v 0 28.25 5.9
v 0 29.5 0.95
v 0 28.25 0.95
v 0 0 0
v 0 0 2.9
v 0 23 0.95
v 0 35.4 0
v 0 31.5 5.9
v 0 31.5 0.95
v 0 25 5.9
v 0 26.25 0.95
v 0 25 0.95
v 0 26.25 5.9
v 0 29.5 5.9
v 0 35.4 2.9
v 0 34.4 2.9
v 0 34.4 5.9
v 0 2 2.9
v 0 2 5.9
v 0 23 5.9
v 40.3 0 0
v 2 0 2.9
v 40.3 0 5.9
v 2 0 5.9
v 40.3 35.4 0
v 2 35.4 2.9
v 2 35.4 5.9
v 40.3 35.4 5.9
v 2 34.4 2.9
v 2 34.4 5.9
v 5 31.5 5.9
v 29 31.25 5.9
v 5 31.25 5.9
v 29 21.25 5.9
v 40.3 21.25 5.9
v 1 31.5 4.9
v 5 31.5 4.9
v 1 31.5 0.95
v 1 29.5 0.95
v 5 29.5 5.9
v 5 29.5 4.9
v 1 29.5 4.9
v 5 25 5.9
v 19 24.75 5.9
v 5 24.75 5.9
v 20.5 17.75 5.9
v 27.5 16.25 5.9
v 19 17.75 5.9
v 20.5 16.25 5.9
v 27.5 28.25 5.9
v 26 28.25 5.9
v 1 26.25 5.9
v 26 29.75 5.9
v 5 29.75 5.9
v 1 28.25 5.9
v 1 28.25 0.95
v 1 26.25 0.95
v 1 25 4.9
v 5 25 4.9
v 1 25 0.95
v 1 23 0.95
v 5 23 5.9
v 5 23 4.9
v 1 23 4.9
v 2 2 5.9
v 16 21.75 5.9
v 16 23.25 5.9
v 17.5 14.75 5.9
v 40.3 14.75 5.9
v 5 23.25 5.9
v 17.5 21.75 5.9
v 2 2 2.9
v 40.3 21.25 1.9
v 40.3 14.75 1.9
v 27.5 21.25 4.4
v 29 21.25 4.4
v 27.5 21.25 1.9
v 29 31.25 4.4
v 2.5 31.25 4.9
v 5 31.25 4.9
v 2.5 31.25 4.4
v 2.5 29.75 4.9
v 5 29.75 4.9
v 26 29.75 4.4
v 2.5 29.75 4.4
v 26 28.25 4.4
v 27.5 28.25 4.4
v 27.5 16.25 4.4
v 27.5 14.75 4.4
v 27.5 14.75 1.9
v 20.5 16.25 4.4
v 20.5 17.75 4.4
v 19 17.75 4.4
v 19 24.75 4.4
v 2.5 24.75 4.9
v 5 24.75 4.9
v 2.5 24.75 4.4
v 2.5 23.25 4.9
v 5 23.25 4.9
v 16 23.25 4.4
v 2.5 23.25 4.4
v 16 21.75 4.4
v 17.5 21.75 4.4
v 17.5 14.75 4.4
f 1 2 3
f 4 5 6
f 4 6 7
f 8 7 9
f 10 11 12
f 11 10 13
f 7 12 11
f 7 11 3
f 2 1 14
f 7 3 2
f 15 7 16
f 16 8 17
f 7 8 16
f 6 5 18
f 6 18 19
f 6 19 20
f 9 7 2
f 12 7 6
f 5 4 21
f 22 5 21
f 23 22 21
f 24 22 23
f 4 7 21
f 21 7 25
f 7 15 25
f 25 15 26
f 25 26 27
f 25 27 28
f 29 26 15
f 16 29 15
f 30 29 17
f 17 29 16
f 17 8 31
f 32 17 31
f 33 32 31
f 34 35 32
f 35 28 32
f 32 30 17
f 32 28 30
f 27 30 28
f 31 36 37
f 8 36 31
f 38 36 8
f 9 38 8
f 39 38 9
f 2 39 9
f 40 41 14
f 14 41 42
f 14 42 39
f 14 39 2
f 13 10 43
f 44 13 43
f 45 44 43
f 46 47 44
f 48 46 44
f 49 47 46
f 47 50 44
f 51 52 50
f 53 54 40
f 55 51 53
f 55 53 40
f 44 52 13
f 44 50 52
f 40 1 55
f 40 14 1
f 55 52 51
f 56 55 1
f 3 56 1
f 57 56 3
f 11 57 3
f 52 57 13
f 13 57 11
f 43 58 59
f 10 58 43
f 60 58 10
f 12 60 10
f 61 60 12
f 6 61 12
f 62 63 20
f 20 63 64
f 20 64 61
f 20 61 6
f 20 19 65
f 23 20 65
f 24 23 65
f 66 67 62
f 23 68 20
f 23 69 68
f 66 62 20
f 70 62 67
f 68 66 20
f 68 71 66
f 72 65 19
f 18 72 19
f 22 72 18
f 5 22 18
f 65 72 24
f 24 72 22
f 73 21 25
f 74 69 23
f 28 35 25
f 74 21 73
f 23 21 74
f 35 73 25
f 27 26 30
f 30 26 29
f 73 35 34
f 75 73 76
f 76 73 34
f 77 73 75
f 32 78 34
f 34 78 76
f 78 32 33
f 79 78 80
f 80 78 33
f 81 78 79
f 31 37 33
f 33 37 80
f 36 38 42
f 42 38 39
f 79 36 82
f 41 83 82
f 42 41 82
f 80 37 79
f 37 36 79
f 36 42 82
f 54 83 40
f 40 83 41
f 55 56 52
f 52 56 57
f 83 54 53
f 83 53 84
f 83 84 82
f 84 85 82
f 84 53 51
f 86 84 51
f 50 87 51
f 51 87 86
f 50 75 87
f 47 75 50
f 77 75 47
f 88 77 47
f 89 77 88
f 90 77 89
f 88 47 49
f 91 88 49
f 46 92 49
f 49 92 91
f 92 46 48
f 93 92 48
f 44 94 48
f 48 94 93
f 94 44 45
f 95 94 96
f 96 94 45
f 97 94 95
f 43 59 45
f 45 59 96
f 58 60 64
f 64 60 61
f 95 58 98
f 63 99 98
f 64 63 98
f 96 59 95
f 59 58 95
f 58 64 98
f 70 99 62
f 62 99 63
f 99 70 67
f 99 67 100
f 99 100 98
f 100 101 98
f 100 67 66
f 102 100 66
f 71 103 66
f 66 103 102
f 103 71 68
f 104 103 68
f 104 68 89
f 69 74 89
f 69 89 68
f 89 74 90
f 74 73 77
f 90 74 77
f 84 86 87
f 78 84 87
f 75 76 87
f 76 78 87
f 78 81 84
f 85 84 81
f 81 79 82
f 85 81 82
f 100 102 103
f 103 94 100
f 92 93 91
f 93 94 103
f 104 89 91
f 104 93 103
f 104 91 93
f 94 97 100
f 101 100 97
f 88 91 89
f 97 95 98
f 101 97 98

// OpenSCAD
battery_height=5.9;
battery_width=35.4;
battery_length=40.3;

contact_width=2;
contact_height=4;

positive_pos=24;
diag_pos=27.25;
negative_pos=30.5;

wire_width=1.5;
wire_depth=1.5;

corner_square_side=3;

difference()
{
	// Main Shape
	cube([battery_length,battery_width,battery_height]);

   // Corner Key
   translate([0,0,battery_height])
   {
      cube([4,4,6], center=true);
   }

	// Corner Key
   translate([0,battery_width,battery_height])
   {
      cube([4,2,6], center=true);
   }

   // Battery Contact 1
	translate([0,positive_pos,battery_height/2])
   {
      cube([2,contact_width,contact_height], center=true);
   }

   // Battery Contact 1 Connection
	translate([0,positive_pos,battery_height])
   {
      cube([10,contact_width,2], center=true);
   }

   // Battery Contact 1 Wire
	translate([10,positive_pos,battery_height])
   {
      cube([15,wire_width,wire_depth*2], center=true);
   }
	// Wire corner square
	translate([(10+15/2),positive_pos-(wire_width/2),battery_height])
   {
      cube([corner_square_side,corner_square_side,wire_depth*2], center=true);
   }
	// Wire middle piece
	translate([(10+15/2)+wire_width/2,(positive_pos/2)+8,battery_height])
   {
      cube([wire_width,7,wire_depth*2], center=true);
   }
	// Wire corner square
	translate([(10+15/2)+(corner_square_side/2),positive_pos-(wire_width/2)-7,battery_height])
   {
      cube([corner_square_side,corner_square_side,wire_depth*2], center=true);
   }
   // Battery Contact 1 Wire
	translate([30,15.5,battery_height])
   {
      cube([24,wire_width,wire_depth*2], center=true);
   }

	// Battery Contact Diagnostic
	translate([0,diag_pos,battery_height/2])
   {
      cube([2,contact_width,contact_height], center=true);
   }
   // Anti-overhang
	translate([0,diag_pos,battery_height])
   {
      cube([2,contact_width,contact_height], center=true);
   }	

   // Battery Contact 2
	translate([0,negative_pos,battery_height/2])
   {
      cube([2,contact_width,contact_height], center=true);
   }

   // Battery Contact 1 Connection
	translate([0,negative_pos,battery_height])
   {
      cube([10,contact_width,2], center=true);
   }
	// Battery Contact 1 Wire
	translate([15,negative_pos,battery_height])
   {
      cube([25,wire_width,wire_depth*2], center=true);
   }
	// Wire corner square
	translate([(20+15/2),negative_pos-(wire_width/2),battery_height])
   {
      cube([corner_square_side,corner_square_side,wire_depth*2], center=true);
   }
	// Wire middle piece
	translate([(20+15/2)+wire_width/2,(negative_pos/2)+8,battery_height])
   {
      cube([wire_width,12,wire_depth*2], center=true);
   }
	// Wire corner square
	translate([(20+15/2)+(corner_square_side/2),negative_pos-(wire_width/2)-11,battery_height])
   {
      cube([corner_square_side,corner_square_side,wire_depth*2], center=true);
   }
   // Battery Contact 1 Wire
	translate([35,18,battery_height])
   {
      cube([15,6.5,(wire_depth+2.5)*2], center=true);
   }
}
